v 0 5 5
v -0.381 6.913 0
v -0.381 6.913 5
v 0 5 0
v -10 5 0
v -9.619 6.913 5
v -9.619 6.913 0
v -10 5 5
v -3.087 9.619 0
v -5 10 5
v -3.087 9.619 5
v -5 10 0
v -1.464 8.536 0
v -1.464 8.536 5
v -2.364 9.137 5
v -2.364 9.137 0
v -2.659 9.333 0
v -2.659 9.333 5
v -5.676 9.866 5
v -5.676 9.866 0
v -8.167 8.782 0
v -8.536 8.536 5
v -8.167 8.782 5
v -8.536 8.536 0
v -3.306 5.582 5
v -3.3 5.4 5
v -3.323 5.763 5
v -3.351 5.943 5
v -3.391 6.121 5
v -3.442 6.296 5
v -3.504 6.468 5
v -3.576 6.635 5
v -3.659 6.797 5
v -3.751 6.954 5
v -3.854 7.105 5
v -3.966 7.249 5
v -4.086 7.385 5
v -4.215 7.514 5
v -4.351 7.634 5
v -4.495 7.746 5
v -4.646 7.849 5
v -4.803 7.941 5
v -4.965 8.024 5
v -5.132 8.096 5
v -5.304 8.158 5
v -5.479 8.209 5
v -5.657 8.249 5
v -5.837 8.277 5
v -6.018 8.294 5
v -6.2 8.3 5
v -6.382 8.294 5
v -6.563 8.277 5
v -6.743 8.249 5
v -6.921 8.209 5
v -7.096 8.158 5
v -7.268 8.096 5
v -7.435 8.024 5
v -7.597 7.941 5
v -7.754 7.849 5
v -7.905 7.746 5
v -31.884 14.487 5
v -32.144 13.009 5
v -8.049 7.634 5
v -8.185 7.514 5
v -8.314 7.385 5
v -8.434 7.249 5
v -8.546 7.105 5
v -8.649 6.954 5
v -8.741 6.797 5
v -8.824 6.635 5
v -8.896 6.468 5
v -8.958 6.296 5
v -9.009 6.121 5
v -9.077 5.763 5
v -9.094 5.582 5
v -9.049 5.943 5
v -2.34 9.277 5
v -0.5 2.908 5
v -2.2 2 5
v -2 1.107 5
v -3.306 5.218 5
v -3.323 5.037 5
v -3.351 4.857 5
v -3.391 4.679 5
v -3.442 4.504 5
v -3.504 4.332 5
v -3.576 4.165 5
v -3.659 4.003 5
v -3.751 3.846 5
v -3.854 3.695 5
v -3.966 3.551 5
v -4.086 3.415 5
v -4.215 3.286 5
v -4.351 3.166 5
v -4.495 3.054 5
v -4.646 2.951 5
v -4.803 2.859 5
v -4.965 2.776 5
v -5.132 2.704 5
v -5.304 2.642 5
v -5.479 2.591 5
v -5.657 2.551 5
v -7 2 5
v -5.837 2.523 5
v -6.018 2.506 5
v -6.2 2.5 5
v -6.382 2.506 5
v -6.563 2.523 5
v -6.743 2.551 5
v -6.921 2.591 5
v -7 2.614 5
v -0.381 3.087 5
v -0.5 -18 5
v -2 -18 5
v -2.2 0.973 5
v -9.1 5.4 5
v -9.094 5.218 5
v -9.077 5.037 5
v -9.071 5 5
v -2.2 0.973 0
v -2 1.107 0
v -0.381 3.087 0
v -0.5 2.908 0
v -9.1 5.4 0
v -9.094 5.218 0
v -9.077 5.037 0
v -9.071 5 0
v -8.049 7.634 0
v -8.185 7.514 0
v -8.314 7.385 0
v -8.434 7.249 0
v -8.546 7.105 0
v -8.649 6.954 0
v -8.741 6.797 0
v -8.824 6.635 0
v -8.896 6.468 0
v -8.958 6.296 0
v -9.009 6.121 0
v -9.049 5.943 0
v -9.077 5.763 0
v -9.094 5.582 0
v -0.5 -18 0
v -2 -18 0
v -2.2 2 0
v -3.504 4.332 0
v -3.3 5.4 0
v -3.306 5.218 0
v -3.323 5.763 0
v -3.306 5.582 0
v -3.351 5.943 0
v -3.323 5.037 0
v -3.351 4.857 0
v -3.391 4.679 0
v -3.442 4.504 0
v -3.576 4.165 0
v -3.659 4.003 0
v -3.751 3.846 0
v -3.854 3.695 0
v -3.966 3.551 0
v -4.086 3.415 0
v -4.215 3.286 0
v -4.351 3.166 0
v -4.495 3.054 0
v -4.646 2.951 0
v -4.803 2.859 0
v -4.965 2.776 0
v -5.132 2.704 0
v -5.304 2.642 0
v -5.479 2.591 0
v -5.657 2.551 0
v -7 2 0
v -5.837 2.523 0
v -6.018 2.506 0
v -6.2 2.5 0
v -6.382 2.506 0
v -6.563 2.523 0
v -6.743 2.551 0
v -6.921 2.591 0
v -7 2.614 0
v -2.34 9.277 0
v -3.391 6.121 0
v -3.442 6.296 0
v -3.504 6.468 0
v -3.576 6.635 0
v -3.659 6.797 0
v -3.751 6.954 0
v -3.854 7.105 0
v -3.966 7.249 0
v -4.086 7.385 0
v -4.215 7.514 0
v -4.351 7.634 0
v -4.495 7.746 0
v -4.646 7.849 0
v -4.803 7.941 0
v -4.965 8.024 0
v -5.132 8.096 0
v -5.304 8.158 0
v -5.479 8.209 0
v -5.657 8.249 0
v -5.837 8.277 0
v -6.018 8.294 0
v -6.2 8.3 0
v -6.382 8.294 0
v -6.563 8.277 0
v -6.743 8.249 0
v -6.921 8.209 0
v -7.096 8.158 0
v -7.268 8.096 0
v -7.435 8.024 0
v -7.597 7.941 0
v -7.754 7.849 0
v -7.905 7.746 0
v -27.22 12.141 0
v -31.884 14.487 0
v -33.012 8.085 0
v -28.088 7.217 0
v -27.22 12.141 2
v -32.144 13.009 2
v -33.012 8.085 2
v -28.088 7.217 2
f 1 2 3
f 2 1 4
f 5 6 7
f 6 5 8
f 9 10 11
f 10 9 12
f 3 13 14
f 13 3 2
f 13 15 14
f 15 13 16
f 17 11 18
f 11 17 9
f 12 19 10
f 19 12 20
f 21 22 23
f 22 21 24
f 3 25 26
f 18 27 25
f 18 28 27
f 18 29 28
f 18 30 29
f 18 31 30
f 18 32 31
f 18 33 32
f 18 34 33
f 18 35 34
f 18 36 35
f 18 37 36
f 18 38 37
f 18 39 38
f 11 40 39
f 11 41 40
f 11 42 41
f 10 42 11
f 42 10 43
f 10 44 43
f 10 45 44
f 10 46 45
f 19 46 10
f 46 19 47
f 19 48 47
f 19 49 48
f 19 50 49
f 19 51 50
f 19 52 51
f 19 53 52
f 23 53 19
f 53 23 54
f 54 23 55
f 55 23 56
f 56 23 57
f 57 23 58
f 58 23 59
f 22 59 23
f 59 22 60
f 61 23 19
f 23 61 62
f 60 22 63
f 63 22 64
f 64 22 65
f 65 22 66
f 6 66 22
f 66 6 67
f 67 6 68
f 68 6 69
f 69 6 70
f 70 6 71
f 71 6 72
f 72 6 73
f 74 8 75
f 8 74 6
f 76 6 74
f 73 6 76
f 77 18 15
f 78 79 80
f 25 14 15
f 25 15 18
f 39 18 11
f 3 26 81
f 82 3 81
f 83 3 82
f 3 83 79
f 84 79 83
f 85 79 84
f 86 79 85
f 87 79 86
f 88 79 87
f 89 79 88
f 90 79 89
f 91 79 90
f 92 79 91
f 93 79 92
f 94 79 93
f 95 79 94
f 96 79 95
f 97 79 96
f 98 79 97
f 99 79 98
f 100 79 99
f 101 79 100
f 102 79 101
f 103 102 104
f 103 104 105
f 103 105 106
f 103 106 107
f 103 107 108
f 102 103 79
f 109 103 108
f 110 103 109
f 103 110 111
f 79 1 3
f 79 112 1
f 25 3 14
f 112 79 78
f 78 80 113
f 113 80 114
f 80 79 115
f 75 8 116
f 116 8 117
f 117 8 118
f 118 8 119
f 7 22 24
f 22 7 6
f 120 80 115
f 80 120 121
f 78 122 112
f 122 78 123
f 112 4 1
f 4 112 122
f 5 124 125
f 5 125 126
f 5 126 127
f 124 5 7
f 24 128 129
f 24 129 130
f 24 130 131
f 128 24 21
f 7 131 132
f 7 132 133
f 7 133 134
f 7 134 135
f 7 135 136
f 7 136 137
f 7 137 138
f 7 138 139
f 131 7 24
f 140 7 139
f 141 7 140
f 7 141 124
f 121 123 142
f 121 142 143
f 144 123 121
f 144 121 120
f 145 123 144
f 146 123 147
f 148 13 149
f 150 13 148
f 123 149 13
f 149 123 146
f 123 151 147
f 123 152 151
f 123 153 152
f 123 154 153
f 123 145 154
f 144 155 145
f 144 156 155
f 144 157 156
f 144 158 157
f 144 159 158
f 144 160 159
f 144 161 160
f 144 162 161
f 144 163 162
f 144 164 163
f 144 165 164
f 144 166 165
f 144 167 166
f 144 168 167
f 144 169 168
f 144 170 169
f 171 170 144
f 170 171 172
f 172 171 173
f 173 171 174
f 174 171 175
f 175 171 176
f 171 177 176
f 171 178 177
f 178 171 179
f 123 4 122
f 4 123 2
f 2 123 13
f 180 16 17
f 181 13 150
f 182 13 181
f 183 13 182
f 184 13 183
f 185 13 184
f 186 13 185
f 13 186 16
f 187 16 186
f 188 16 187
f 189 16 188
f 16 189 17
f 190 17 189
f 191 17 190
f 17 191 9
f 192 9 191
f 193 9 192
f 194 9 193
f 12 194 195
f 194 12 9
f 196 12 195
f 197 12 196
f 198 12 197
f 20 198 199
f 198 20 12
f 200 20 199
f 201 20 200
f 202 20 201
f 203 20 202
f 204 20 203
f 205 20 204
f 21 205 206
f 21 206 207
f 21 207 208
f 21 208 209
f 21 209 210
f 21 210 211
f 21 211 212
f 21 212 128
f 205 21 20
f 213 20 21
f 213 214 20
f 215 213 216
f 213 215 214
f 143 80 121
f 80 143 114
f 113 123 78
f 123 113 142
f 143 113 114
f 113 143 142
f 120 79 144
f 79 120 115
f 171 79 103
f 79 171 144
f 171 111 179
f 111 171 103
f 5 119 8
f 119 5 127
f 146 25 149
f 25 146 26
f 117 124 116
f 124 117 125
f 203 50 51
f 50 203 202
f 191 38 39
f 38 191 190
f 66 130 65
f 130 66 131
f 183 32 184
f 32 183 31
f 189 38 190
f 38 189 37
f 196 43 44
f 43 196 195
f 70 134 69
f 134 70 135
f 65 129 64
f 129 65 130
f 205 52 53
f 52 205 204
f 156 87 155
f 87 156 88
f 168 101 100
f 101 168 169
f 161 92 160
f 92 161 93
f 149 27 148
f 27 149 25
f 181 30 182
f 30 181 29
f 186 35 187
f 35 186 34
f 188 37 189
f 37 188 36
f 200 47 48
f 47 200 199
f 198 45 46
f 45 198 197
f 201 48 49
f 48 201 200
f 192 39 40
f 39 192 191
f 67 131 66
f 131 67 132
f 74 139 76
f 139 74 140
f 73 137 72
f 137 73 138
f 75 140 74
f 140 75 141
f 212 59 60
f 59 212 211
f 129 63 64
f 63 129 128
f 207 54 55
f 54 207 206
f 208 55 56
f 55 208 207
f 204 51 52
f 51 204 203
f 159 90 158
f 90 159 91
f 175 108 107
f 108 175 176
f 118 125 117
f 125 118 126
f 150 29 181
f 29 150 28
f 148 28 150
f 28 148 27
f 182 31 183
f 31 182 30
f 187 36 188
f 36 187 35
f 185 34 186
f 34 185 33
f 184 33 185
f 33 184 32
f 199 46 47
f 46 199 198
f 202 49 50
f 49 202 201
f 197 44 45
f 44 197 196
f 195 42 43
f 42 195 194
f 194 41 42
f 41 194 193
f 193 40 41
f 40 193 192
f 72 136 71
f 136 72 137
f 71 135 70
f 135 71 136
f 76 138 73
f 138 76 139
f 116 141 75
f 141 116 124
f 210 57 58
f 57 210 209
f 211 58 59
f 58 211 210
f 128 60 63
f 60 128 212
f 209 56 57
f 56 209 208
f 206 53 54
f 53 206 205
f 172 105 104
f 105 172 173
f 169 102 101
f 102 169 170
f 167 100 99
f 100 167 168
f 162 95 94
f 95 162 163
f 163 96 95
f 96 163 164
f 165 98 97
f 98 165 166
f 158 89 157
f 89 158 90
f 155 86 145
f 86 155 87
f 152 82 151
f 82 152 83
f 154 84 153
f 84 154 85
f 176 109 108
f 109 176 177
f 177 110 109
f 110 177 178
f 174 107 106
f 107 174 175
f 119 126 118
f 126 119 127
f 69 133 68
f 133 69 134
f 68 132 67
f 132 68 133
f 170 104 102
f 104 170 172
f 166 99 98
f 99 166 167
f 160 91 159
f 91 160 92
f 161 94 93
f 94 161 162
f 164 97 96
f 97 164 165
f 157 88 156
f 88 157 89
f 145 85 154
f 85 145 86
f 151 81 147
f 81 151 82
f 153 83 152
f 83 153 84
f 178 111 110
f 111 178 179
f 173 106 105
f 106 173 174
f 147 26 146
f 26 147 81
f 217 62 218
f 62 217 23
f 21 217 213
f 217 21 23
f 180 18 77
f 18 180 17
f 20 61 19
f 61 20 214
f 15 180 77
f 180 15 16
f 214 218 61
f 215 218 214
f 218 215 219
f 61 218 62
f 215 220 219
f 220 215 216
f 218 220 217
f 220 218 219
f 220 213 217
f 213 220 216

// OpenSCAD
//include <relativity.scad>

radio_borde = 10/2;
radio_pajita = 5.8/2;
altura = 5;


varandilla();
difference() {
  difference() {
    soporte(altura);
  }
  taladros_pagitas();
  quitar_material();
}


module soporte(altura) {
  posicion_soporte = [-5, 5, 0];
  hull() {
    translate(posicion_soporte)
    cylinder(r=radio_borde, h=altura);
  }
  translate([-2, -18, 0]) {
    cube(size=[1.5, 25, 5]);
  }
}

module varandilla() {
  translate([-2.6, 7.8, 0]) {
    rotate([0, 0, 80]) {
      cube(size=[1.5, 30, 5]);
      translate([-5, 25, 0]) {
        cube(size=[5, 5, 2]);
      }
    }
  }
}

module taladros_pagitas() {
  altura_taladro = 40;
  posicion_taladro = [-6.2, 5.4, -1];

    translate(posicion_taladro)
      cylinder(r=radio_pajita, h=altura_taladro, $fn=100);
}

module quitar_material() {
  translate([-17, -2, 0])
    cube(size=[14.8, 4, 10]);
  translate([-12, -5, 0])
    cube(size=[5, 10, 10]);
}
